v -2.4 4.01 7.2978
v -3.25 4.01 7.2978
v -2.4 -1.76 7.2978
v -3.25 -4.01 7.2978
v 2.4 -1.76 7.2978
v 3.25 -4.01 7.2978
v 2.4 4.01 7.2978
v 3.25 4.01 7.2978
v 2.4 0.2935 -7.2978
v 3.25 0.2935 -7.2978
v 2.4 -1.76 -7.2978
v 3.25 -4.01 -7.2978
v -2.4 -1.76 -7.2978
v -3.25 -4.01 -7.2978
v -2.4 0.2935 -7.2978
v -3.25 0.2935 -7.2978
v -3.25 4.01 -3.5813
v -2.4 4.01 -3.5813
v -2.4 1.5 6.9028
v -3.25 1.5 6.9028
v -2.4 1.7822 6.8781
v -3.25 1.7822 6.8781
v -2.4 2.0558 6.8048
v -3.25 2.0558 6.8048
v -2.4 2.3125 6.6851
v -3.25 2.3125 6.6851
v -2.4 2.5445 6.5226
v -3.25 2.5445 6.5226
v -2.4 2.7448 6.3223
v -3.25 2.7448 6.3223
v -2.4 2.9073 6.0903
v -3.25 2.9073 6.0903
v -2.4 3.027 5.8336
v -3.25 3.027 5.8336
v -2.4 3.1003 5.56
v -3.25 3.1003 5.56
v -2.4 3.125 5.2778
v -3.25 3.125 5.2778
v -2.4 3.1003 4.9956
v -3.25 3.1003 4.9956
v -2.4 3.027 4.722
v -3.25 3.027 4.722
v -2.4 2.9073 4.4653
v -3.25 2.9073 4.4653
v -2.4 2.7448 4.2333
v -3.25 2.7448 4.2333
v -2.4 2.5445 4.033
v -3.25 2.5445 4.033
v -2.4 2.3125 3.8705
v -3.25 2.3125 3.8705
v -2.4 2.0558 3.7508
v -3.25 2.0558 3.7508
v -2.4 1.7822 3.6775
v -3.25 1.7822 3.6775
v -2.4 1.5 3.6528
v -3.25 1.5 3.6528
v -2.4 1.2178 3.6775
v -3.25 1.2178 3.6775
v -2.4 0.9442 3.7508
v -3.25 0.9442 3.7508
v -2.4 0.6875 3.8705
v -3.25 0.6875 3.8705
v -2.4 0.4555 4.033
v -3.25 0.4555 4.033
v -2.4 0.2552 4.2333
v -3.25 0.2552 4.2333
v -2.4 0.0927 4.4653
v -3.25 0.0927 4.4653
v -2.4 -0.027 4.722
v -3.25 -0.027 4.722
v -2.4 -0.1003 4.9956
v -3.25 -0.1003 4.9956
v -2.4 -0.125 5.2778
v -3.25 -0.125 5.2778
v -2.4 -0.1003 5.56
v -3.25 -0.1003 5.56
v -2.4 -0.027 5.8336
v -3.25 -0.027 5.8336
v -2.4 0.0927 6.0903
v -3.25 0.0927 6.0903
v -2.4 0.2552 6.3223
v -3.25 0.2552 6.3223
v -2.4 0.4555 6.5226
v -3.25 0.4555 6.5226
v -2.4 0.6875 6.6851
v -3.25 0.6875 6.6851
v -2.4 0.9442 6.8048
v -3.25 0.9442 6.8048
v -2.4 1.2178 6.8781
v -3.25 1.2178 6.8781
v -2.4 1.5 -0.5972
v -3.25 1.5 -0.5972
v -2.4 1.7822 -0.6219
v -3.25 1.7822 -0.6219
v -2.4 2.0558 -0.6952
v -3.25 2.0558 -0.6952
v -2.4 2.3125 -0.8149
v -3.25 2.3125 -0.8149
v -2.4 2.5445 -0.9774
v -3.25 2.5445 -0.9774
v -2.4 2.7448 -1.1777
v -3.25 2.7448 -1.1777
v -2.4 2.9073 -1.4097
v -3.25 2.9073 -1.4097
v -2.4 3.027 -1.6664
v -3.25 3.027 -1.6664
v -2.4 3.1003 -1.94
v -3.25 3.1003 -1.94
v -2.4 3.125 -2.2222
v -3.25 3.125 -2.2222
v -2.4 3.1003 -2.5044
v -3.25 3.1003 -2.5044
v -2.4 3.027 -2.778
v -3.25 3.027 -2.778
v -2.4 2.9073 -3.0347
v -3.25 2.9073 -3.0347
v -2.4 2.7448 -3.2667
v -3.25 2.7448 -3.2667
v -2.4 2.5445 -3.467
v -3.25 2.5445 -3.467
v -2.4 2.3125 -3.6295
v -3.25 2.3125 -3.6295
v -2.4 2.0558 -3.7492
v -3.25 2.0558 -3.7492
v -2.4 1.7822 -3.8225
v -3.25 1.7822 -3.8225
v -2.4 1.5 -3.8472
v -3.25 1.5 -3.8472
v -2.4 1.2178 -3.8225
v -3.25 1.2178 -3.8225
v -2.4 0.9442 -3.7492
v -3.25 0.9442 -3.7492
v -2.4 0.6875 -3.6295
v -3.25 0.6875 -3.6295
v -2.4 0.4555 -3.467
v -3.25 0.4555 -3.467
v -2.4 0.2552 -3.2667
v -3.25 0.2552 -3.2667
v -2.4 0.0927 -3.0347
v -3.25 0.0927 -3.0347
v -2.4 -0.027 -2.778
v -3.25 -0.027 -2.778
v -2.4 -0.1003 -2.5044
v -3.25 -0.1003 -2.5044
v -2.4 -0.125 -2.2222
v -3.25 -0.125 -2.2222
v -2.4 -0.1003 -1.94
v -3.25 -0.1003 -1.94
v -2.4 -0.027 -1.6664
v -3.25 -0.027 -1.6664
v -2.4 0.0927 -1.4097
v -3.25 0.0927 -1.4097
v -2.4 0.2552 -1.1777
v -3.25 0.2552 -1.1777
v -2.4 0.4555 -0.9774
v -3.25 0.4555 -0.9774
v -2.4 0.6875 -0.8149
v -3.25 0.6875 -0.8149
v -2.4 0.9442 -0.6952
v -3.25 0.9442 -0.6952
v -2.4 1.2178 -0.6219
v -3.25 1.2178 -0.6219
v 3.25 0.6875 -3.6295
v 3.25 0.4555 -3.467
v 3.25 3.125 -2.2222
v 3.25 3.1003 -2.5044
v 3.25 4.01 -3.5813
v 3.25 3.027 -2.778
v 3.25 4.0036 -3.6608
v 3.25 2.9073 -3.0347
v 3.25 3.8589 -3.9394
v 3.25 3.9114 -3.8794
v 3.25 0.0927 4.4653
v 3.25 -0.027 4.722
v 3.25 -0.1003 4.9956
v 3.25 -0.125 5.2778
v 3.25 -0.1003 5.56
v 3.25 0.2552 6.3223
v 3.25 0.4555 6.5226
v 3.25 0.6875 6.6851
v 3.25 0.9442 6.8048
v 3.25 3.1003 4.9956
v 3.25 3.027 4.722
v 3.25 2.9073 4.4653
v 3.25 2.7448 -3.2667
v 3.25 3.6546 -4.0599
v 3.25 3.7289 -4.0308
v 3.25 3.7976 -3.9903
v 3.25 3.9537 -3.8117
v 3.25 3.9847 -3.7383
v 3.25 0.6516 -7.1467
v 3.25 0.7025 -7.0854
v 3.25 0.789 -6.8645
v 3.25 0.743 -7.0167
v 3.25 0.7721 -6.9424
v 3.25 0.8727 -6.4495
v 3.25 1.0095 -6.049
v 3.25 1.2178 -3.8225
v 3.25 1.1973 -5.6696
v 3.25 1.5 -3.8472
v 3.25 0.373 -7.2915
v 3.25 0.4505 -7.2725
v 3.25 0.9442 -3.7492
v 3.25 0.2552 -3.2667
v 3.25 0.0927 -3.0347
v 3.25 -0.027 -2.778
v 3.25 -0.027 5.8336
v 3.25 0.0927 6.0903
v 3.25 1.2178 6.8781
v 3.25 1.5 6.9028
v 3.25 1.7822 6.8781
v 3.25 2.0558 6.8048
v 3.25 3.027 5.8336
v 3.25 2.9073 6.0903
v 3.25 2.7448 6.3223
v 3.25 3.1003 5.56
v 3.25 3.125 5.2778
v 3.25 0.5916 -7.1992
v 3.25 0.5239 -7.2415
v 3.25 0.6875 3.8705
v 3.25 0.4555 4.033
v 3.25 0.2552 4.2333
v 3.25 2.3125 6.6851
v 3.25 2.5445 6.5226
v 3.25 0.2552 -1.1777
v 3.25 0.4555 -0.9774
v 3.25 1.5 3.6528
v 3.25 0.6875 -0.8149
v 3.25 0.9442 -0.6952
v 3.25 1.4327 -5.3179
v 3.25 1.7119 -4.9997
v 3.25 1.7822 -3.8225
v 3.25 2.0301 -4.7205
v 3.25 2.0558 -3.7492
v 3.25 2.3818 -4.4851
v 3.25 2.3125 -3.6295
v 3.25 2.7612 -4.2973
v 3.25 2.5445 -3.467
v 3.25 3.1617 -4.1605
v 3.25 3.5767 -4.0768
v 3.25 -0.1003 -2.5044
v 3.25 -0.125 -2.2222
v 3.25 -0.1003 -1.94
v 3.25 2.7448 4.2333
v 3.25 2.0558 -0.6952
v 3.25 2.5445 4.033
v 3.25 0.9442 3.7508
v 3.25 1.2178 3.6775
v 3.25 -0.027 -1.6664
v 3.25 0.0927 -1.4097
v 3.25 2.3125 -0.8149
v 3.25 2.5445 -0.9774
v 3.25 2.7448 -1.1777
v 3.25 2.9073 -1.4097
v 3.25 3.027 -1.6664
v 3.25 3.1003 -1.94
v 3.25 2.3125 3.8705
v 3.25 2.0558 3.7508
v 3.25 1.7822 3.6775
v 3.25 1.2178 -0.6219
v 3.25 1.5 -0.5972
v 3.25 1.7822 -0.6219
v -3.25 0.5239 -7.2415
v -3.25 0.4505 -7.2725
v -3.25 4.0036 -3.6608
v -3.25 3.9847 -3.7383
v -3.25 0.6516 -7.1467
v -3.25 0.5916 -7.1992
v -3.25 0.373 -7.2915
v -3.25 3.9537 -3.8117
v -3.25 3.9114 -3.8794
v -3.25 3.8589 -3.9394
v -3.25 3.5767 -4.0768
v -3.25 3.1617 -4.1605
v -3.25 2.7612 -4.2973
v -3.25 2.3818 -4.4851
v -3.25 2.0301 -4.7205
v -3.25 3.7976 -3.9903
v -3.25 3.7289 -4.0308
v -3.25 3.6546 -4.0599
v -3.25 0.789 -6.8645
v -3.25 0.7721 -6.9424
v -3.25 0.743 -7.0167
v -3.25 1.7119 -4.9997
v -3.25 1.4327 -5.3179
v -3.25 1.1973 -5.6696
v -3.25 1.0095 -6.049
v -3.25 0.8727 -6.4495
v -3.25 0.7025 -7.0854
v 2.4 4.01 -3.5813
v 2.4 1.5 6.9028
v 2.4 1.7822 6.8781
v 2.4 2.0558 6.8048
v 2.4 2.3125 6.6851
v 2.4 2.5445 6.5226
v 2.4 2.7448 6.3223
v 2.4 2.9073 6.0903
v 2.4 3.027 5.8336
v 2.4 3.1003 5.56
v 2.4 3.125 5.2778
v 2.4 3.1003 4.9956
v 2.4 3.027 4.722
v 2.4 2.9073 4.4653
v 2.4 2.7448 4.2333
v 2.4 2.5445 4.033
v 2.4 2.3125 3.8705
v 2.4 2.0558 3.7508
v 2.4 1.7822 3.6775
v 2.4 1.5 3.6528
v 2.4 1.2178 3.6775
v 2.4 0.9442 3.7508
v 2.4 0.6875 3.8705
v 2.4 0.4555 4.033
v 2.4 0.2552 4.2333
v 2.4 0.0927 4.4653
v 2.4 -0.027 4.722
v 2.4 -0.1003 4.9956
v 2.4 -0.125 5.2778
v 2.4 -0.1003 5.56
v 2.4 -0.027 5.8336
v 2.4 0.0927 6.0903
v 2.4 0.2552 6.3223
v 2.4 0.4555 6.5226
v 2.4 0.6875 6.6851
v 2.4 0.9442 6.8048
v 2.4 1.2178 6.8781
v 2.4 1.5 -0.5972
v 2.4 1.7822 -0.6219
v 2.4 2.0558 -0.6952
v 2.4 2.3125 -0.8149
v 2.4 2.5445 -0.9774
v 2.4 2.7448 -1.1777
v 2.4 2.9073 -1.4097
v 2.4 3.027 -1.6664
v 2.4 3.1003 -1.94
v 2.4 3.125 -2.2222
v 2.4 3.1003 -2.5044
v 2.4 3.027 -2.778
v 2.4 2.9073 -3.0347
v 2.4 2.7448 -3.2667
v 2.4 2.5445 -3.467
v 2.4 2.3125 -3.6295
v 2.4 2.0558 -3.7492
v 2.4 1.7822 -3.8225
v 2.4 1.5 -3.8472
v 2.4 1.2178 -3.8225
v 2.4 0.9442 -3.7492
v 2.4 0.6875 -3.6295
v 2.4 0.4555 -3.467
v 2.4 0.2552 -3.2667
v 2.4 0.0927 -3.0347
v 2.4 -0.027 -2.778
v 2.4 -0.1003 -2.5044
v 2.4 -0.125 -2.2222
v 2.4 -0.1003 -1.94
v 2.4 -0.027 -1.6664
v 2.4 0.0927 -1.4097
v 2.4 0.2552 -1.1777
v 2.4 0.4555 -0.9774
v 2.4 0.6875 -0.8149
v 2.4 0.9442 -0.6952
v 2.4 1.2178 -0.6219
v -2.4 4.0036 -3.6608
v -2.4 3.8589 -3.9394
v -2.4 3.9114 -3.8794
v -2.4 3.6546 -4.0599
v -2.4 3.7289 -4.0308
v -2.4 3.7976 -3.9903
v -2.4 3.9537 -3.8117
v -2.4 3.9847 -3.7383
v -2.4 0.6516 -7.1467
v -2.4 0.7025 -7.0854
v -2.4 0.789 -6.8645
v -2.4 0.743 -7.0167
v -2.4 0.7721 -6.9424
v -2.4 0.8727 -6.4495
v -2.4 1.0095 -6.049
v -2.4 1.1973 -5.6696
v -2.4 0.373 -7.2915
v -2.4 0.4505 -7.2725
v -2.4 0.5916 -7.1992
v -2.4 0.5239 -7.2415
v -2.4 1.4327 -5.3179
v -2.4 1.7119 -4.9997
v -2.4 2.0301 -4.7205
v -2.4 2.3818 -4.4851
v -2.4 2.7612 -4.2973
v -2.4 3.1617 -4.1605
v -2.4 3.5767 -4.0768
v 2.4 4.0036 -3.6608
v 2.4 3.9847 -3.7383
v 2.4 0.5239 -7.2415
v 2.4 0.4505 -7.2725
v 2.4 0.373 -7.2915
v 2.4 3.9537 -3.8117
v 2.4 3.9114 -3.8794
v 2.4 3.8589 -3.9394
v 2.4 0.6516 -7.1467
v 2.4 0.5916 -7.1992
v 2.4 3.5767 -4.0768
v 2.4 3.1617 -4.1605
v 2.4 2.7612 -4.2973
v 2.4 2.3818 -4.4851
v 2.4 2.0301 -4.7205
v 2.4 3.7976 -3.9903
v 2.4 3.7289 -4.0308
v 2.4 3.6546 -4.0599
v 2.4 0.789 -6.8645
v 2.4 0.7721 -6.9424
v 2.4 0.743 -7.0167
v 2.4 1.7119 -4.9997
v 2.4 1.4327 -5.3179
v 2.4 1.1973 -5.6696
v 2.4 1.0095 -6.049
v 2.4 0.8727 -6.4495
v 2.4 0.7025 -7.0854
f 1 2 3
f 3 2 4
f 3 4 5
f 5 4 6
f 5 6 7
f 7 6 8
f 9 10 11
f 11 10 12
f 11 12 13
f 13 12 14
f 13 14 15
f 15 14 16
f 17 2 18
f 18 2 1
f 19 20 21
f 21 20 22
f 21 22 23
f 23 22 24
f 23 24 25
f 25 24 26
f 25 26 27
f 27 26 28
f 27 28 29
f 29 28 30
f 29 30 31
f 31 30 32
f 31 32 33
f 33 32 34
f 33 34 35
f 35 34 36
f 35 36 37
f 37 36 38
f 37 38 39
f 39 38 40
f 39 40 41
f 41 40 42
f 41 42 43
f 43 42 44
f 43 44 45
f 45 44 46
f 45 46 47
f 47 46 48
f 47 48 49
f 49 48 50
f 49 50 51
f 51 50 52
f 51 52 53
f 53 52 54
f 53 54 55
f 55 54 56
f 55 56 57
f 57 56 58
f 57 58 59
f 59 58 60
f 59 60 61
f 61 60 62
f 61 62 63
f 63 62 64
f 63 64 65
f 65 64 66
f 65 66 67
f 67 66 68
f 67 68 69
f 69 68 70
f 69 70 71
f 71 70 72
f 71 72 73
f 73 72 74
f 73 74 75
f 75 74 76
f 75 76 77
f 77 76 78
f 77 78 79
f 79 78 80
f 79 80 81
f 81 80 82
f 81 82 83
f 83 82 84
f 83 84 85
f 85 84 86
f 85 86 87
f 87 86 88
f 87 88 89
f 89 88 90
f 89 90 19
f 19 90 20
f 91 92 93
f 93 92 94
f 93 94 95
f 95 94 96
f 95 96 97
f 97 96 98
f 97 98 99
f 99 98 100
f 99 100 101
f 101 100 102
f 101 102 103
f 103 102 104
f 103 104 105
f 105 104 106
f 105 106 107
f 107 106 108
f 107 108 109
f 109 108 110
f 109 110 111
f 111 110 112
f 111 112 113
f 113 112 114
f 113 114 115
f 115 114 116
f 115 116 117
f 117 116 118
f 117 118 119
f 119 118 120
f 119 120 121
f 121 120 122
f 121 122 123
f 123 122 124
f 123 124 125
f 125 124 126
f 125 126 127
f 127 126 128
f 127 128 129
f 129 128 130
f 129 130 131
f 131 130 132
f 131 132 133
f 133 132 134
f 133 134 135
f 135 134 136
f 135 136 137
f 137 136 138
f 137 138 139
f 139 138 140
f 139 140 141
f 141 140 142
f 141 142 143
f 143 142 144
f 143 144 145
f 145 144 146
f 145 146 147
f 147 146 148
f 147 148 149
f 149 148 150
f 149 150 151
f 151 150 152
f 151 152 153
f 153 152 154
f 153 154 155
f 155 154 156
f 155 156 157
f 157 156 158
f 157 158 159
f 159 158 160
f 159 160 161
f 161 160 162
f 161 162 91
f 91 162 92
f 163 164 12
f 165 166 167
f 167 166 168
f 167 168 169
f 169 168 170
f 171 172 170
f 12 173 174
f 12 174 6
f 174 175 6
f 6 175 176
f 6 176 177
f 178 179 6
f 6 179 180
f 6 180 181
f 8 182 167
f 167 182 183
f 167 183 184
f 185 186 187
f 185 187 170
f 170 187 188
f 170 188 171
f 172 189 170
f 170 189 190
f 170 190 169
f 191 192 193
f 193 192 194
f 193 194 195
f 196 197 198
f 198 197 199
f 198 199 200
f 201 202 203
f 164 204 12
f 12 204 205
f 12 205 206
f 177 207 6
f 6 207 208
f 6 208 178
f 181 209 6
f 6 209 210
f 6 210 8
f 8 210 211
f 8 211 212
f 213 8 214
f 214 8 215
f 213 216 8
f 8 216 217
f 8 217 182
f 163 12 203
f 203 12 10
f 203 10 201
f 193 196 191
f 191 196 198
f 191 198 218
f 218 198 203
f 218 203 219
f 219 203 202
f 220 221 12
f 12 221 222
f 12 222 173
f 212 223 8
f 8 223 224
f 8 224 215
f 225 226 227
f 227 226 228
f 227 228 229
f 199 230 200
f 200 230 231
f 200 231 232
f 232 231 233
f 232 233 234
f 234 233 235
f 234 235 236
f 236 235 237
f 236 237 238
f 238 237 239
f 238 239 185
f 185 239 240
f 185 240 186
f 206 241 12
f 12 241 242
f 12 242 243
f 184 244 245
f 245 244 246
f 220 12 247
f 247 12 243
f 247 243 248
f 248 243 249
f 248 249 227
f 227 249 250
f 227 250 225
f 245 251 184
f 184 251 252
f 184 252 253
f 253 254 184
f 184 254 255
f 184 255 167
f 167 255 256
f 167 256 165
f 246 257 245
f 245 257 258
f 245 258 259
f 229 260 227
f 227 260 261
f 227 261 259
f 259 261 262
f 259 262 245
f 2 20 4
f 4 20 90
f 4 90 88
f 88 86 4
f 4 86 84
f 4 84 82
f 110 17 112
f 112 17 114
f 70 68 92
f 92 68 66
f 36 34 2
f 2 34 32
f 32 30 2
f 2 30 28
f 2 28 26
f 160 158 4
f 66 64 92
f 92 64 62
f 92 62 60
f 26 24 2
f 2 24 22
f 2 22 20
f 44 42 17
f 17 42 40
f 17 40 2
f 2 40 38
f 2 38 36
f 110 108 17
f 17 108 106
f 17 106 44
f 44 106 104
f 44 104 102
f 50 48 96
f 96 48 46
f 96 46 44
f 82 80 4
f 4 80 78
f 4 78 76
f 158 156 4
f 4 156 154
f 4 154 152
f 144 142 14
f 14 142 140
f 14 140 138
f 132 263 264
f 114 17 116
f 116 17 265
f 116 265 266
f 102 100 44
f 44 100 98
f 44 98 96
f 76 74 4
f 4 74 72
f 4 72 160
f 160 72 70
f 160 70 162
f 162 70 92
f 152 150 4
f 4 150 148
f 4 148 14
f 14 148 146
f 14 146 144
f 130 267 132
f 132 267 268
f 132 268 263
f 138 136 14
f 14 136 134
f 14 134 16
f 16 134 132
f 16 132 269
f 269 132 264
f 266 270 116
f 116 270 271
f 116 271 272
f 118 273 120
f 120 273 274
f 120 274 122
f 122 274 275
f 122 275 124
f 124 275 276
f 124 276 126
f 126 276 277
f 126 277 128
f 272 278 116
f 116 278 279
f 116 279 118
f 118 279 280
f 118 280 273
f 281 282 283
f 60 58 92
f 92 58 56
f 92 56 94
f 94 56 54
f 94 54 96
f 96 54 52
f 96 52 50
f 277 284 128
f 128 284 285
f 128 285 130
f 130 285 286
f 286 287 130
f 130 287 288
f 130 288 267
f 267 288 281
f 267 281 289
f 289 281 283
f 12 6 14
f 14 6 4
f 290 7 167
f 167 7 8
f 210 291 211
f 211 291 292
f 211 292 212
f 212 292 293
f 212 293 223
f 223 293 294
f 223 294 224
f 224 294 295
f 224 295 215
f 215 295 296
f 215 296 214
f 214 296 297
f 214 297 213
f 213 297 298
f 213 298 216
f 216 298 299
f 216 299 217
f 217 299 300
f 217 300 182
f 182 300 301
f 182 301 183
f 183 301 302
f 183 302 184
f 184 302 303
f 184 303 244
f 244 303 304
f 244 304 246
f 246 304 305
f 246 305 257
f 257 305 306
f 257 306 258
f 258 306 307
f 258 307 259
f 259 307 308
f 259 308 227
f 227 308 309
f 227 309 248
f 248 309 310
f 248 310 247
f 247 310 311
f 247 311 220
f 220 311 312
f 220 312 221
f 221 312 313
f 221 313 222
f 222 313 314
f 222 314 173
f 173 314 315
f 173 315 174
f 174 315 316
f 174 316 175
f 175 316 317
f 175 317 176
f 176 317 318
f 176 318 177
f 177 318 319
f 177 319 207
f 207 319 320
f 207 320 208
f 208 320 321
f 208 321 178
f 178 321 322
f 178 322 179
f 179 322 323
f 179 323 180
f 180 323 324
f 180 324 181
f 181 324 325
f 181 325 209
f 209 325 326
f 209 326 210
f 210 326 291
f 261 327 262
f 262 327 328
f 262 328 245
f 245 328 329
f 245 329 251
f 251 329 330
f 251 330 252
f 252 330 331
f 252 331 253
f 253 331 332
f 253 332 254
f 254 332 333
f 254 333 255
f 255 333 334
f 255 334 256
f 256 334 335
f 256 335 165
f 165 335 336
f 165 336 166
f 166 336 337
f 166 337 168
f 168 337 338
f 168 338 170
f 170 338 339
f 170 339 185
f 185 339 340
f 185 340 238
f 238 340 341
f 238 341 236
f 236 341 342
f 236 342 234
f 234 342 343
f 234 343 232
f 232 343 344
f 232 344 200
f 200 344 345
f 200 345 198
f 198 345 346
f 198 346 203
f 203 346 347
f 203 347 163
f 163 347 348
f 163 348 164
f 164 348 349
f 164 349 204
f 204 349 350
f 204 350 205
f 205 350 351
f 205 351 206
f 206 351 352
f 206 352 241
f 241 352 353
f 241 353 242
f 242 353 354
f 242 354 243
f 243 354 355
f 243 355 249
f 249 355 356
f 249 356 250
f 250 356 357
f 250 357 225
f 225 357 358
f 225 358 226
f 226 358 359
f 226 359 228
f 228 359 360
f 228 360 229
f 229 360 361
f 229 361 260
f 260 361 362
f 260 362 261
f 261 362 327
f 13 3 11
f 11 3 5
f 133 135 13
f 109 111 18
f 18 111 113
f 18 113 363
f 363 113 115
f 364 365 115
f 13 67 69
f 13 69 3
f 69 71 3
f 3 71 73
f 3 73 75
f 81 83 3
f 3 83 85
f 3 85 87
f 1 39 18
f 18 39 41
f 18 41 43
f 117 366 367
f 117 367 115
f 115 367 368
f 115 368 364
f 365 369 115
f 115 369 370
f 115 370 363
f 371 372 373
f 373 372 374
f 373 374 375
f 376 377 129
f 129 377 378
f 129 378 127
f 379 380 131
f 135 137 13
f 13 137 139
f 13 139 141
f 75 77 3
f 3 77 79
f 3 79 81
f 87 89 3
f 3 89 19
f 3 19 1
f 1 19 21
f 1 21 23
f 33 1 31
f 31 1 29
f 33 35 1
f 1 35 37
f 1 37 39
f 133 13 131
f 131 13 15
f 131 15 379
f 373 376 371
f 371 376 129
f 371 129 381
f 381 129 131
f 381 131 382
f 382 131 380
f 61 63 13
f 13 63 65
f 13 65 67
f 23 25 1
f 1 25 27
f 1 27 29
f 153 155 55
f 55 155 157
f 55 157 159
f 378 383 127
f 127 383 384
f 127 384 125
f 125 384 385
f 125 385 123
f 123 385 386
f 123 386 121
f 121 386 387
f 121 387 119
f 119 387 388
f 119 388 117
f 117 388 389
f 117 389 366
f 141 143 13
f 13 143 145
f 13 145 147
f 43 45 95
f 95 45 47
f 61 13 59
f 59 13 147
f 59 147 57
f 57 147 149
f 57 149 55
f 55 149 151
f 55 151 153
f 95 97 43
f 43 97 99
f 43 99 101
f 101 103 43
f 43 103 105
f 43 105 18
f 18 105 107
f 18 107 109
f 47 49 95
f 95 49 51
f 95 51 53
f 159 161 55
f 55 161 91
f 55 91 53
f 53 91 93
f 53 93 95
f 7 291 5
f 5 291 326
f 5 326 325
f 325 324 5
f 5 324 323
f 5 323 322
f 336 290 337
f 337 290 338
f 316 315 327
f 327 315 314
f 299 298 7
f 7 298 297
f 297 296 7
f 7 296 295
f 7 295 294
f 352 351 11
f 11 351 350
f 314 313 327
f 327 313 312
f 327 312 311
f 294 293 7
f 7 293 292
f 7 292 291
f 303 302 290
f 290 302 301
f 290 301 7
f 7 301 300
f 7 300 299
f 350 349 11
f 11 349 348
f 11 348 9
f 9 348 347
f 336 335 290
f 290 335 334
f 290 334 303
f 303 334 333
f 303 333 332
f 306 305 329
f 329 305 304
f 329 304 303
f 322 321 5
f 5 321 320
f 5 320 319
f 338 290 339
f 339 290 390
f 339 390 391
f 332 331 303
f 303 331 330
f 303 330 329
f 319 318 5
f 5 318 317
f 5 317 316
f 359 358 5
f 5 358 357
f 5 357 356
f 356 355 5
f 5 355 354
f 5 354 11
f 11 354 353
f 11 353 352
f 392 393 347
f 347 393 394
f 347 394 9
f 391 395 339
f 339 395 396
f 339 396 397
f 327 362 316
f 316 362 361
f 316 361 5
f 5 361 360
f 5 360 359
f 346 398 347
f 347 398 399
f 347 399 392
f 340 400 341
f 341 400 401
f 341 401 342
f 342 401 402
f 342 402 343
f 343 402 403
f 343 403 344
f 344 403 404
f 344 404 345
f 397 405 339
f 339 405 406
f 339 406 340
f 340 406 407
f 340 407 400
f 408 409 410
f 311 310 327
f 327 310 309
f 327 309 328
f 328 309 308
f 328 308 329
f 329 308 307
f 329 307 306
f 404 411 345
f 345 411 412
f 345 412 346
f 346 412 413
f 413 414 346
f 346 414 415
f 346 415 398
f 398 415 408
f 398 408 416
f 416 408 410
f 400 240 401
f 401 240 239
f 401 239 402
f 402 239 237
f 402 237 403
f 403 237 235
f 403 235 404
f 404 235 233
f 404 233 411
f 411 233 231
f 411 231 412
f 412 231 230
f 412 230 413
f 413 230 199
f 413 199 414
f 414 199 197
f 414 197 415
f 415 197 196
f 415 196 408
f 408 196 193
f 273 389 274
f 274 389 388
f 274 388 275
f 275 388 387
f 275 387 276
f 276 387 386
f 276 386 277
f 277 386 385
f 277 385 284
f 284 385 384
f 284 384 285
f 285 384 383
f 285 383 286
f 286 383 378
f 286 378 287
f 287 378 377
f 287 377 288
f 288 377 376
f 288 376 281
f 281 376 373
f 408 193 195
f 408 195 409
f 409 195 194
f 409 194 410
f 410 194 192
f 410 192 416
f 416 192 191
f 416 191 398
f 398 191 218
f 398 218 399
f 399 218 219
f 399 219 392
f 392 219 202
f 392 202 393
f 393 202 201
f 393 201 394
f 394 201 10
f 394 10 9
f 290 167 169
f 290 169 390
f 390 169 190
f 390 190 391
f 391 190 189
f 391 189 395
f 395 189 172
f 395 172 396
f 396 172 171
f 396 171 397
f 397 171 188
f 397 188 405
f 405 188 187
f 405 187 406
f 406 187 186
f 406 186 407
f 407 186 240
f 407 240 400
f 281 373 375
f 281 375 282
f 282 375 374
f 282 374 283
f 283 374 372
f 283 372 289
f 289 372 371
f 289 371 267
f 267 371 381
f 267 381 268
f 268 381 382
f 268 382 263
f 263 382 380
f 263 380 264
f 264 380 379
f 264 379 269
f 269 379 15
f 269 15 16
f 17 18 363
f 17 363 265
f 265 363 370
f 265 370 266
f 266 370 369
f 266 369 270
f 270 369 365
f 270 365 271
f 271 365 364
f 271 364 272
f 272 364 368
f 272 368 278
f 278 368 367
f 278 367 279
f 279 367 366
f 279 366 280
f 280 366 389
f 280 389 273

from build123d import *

# Parameters (mm, degrees)
SKETCH1_W               = 14.59562339
SKETCH1_H               = 8.02
SKETCH1_R               = 1.625
BOSS_EXTRUDE1_DEPTH     = 3.25
SKETCH2_W               = 14.59562339
SKETCH2_H               = 5.77
CUT_EXTRUDE1_DEPTH      = 2.4
CUT_EXTRUDE2_DEPTH      = 4.25
CUT_EXTRUDE2_DEPTH_BACK = 4.25
FILLET1_R               = 0.5


with BuildPart() as part:
    # Sketch1 → Boss-Extrude1 (new body, symmetric)
    with BuildSketch(Plane(origin=(0, 0, 0), x_dir=(0, 0, -1), z_dir=(1, 0, 0))):
        Rectangle(SKETCH1_W, SKETCH1_H)
        with Locations((-5.277811695, 1.5)):
            Circle(SKETCH1_R, mode=Mode.SUBTRACT)
        with Locations((2.222188305, 1.5)):
            Circle(SKETCH1_R, mode=Mode.SUBTRACT)
    extrude(amount=BOSS_EXTRUDE1_DEPTH, both=True)

    # Sketch2 → Cut-Extrude1 (cut, symmetric)
    with BuildSketch(Plane(origin=(0, 0, 0), x_dir=(0, 0, -1), z_dir=(1, 0, 0))):
        with Locations((0, 1.125)):
            Rectangle(SKETCH2_W, SKETCH2_H)
    extrude(amount=CUT_EXTRUDE1_DEPTH, both=True, mode=Mode.SUBTRACT)

    # Sketch4 → Cut-Extrude2 (cut, two sides)
    with BuildSketch(Plane(origin=(0, 0, 0), x_dir=(0, 0, -1), z_dir=(1, 0, 0))) as cut_extrude2_sk:
        with BuildLine():
            Line((4.047811695, 4.01), (7.297811695, 4.01))
            Line((7.297811695, 4.01), (7.297811695, 0.76))
            ThreePointArc((7.297811695, 0.76), (4.999714656, 1.711902961), (4.047811695, 4.01))
        make_face()
    extrude(amount=CUT_EXTRUDE2_DEPTH, mode=Mode.SUBTRACT)
    extrude(cut_extrude2_sk.sketch, amount=-CUT_EXTRUDE2_DEPTH_BACK, mode=Mode.SUBTRACT)

    # Fillet1
    fillet1_edges = [part.edges().sort_by_distance(p)[0] for p in [
        (2.825, 0.76, -7.297811695),
        (2.825, 4.01, -4.047811695),
        (-2.825, 0.76, -7.297811695),
        (-2.825, 4.01, -4.047811695),
    ]]
    fillet(fillet1_edges, radius=FILLET1_R)


solid = part.part
